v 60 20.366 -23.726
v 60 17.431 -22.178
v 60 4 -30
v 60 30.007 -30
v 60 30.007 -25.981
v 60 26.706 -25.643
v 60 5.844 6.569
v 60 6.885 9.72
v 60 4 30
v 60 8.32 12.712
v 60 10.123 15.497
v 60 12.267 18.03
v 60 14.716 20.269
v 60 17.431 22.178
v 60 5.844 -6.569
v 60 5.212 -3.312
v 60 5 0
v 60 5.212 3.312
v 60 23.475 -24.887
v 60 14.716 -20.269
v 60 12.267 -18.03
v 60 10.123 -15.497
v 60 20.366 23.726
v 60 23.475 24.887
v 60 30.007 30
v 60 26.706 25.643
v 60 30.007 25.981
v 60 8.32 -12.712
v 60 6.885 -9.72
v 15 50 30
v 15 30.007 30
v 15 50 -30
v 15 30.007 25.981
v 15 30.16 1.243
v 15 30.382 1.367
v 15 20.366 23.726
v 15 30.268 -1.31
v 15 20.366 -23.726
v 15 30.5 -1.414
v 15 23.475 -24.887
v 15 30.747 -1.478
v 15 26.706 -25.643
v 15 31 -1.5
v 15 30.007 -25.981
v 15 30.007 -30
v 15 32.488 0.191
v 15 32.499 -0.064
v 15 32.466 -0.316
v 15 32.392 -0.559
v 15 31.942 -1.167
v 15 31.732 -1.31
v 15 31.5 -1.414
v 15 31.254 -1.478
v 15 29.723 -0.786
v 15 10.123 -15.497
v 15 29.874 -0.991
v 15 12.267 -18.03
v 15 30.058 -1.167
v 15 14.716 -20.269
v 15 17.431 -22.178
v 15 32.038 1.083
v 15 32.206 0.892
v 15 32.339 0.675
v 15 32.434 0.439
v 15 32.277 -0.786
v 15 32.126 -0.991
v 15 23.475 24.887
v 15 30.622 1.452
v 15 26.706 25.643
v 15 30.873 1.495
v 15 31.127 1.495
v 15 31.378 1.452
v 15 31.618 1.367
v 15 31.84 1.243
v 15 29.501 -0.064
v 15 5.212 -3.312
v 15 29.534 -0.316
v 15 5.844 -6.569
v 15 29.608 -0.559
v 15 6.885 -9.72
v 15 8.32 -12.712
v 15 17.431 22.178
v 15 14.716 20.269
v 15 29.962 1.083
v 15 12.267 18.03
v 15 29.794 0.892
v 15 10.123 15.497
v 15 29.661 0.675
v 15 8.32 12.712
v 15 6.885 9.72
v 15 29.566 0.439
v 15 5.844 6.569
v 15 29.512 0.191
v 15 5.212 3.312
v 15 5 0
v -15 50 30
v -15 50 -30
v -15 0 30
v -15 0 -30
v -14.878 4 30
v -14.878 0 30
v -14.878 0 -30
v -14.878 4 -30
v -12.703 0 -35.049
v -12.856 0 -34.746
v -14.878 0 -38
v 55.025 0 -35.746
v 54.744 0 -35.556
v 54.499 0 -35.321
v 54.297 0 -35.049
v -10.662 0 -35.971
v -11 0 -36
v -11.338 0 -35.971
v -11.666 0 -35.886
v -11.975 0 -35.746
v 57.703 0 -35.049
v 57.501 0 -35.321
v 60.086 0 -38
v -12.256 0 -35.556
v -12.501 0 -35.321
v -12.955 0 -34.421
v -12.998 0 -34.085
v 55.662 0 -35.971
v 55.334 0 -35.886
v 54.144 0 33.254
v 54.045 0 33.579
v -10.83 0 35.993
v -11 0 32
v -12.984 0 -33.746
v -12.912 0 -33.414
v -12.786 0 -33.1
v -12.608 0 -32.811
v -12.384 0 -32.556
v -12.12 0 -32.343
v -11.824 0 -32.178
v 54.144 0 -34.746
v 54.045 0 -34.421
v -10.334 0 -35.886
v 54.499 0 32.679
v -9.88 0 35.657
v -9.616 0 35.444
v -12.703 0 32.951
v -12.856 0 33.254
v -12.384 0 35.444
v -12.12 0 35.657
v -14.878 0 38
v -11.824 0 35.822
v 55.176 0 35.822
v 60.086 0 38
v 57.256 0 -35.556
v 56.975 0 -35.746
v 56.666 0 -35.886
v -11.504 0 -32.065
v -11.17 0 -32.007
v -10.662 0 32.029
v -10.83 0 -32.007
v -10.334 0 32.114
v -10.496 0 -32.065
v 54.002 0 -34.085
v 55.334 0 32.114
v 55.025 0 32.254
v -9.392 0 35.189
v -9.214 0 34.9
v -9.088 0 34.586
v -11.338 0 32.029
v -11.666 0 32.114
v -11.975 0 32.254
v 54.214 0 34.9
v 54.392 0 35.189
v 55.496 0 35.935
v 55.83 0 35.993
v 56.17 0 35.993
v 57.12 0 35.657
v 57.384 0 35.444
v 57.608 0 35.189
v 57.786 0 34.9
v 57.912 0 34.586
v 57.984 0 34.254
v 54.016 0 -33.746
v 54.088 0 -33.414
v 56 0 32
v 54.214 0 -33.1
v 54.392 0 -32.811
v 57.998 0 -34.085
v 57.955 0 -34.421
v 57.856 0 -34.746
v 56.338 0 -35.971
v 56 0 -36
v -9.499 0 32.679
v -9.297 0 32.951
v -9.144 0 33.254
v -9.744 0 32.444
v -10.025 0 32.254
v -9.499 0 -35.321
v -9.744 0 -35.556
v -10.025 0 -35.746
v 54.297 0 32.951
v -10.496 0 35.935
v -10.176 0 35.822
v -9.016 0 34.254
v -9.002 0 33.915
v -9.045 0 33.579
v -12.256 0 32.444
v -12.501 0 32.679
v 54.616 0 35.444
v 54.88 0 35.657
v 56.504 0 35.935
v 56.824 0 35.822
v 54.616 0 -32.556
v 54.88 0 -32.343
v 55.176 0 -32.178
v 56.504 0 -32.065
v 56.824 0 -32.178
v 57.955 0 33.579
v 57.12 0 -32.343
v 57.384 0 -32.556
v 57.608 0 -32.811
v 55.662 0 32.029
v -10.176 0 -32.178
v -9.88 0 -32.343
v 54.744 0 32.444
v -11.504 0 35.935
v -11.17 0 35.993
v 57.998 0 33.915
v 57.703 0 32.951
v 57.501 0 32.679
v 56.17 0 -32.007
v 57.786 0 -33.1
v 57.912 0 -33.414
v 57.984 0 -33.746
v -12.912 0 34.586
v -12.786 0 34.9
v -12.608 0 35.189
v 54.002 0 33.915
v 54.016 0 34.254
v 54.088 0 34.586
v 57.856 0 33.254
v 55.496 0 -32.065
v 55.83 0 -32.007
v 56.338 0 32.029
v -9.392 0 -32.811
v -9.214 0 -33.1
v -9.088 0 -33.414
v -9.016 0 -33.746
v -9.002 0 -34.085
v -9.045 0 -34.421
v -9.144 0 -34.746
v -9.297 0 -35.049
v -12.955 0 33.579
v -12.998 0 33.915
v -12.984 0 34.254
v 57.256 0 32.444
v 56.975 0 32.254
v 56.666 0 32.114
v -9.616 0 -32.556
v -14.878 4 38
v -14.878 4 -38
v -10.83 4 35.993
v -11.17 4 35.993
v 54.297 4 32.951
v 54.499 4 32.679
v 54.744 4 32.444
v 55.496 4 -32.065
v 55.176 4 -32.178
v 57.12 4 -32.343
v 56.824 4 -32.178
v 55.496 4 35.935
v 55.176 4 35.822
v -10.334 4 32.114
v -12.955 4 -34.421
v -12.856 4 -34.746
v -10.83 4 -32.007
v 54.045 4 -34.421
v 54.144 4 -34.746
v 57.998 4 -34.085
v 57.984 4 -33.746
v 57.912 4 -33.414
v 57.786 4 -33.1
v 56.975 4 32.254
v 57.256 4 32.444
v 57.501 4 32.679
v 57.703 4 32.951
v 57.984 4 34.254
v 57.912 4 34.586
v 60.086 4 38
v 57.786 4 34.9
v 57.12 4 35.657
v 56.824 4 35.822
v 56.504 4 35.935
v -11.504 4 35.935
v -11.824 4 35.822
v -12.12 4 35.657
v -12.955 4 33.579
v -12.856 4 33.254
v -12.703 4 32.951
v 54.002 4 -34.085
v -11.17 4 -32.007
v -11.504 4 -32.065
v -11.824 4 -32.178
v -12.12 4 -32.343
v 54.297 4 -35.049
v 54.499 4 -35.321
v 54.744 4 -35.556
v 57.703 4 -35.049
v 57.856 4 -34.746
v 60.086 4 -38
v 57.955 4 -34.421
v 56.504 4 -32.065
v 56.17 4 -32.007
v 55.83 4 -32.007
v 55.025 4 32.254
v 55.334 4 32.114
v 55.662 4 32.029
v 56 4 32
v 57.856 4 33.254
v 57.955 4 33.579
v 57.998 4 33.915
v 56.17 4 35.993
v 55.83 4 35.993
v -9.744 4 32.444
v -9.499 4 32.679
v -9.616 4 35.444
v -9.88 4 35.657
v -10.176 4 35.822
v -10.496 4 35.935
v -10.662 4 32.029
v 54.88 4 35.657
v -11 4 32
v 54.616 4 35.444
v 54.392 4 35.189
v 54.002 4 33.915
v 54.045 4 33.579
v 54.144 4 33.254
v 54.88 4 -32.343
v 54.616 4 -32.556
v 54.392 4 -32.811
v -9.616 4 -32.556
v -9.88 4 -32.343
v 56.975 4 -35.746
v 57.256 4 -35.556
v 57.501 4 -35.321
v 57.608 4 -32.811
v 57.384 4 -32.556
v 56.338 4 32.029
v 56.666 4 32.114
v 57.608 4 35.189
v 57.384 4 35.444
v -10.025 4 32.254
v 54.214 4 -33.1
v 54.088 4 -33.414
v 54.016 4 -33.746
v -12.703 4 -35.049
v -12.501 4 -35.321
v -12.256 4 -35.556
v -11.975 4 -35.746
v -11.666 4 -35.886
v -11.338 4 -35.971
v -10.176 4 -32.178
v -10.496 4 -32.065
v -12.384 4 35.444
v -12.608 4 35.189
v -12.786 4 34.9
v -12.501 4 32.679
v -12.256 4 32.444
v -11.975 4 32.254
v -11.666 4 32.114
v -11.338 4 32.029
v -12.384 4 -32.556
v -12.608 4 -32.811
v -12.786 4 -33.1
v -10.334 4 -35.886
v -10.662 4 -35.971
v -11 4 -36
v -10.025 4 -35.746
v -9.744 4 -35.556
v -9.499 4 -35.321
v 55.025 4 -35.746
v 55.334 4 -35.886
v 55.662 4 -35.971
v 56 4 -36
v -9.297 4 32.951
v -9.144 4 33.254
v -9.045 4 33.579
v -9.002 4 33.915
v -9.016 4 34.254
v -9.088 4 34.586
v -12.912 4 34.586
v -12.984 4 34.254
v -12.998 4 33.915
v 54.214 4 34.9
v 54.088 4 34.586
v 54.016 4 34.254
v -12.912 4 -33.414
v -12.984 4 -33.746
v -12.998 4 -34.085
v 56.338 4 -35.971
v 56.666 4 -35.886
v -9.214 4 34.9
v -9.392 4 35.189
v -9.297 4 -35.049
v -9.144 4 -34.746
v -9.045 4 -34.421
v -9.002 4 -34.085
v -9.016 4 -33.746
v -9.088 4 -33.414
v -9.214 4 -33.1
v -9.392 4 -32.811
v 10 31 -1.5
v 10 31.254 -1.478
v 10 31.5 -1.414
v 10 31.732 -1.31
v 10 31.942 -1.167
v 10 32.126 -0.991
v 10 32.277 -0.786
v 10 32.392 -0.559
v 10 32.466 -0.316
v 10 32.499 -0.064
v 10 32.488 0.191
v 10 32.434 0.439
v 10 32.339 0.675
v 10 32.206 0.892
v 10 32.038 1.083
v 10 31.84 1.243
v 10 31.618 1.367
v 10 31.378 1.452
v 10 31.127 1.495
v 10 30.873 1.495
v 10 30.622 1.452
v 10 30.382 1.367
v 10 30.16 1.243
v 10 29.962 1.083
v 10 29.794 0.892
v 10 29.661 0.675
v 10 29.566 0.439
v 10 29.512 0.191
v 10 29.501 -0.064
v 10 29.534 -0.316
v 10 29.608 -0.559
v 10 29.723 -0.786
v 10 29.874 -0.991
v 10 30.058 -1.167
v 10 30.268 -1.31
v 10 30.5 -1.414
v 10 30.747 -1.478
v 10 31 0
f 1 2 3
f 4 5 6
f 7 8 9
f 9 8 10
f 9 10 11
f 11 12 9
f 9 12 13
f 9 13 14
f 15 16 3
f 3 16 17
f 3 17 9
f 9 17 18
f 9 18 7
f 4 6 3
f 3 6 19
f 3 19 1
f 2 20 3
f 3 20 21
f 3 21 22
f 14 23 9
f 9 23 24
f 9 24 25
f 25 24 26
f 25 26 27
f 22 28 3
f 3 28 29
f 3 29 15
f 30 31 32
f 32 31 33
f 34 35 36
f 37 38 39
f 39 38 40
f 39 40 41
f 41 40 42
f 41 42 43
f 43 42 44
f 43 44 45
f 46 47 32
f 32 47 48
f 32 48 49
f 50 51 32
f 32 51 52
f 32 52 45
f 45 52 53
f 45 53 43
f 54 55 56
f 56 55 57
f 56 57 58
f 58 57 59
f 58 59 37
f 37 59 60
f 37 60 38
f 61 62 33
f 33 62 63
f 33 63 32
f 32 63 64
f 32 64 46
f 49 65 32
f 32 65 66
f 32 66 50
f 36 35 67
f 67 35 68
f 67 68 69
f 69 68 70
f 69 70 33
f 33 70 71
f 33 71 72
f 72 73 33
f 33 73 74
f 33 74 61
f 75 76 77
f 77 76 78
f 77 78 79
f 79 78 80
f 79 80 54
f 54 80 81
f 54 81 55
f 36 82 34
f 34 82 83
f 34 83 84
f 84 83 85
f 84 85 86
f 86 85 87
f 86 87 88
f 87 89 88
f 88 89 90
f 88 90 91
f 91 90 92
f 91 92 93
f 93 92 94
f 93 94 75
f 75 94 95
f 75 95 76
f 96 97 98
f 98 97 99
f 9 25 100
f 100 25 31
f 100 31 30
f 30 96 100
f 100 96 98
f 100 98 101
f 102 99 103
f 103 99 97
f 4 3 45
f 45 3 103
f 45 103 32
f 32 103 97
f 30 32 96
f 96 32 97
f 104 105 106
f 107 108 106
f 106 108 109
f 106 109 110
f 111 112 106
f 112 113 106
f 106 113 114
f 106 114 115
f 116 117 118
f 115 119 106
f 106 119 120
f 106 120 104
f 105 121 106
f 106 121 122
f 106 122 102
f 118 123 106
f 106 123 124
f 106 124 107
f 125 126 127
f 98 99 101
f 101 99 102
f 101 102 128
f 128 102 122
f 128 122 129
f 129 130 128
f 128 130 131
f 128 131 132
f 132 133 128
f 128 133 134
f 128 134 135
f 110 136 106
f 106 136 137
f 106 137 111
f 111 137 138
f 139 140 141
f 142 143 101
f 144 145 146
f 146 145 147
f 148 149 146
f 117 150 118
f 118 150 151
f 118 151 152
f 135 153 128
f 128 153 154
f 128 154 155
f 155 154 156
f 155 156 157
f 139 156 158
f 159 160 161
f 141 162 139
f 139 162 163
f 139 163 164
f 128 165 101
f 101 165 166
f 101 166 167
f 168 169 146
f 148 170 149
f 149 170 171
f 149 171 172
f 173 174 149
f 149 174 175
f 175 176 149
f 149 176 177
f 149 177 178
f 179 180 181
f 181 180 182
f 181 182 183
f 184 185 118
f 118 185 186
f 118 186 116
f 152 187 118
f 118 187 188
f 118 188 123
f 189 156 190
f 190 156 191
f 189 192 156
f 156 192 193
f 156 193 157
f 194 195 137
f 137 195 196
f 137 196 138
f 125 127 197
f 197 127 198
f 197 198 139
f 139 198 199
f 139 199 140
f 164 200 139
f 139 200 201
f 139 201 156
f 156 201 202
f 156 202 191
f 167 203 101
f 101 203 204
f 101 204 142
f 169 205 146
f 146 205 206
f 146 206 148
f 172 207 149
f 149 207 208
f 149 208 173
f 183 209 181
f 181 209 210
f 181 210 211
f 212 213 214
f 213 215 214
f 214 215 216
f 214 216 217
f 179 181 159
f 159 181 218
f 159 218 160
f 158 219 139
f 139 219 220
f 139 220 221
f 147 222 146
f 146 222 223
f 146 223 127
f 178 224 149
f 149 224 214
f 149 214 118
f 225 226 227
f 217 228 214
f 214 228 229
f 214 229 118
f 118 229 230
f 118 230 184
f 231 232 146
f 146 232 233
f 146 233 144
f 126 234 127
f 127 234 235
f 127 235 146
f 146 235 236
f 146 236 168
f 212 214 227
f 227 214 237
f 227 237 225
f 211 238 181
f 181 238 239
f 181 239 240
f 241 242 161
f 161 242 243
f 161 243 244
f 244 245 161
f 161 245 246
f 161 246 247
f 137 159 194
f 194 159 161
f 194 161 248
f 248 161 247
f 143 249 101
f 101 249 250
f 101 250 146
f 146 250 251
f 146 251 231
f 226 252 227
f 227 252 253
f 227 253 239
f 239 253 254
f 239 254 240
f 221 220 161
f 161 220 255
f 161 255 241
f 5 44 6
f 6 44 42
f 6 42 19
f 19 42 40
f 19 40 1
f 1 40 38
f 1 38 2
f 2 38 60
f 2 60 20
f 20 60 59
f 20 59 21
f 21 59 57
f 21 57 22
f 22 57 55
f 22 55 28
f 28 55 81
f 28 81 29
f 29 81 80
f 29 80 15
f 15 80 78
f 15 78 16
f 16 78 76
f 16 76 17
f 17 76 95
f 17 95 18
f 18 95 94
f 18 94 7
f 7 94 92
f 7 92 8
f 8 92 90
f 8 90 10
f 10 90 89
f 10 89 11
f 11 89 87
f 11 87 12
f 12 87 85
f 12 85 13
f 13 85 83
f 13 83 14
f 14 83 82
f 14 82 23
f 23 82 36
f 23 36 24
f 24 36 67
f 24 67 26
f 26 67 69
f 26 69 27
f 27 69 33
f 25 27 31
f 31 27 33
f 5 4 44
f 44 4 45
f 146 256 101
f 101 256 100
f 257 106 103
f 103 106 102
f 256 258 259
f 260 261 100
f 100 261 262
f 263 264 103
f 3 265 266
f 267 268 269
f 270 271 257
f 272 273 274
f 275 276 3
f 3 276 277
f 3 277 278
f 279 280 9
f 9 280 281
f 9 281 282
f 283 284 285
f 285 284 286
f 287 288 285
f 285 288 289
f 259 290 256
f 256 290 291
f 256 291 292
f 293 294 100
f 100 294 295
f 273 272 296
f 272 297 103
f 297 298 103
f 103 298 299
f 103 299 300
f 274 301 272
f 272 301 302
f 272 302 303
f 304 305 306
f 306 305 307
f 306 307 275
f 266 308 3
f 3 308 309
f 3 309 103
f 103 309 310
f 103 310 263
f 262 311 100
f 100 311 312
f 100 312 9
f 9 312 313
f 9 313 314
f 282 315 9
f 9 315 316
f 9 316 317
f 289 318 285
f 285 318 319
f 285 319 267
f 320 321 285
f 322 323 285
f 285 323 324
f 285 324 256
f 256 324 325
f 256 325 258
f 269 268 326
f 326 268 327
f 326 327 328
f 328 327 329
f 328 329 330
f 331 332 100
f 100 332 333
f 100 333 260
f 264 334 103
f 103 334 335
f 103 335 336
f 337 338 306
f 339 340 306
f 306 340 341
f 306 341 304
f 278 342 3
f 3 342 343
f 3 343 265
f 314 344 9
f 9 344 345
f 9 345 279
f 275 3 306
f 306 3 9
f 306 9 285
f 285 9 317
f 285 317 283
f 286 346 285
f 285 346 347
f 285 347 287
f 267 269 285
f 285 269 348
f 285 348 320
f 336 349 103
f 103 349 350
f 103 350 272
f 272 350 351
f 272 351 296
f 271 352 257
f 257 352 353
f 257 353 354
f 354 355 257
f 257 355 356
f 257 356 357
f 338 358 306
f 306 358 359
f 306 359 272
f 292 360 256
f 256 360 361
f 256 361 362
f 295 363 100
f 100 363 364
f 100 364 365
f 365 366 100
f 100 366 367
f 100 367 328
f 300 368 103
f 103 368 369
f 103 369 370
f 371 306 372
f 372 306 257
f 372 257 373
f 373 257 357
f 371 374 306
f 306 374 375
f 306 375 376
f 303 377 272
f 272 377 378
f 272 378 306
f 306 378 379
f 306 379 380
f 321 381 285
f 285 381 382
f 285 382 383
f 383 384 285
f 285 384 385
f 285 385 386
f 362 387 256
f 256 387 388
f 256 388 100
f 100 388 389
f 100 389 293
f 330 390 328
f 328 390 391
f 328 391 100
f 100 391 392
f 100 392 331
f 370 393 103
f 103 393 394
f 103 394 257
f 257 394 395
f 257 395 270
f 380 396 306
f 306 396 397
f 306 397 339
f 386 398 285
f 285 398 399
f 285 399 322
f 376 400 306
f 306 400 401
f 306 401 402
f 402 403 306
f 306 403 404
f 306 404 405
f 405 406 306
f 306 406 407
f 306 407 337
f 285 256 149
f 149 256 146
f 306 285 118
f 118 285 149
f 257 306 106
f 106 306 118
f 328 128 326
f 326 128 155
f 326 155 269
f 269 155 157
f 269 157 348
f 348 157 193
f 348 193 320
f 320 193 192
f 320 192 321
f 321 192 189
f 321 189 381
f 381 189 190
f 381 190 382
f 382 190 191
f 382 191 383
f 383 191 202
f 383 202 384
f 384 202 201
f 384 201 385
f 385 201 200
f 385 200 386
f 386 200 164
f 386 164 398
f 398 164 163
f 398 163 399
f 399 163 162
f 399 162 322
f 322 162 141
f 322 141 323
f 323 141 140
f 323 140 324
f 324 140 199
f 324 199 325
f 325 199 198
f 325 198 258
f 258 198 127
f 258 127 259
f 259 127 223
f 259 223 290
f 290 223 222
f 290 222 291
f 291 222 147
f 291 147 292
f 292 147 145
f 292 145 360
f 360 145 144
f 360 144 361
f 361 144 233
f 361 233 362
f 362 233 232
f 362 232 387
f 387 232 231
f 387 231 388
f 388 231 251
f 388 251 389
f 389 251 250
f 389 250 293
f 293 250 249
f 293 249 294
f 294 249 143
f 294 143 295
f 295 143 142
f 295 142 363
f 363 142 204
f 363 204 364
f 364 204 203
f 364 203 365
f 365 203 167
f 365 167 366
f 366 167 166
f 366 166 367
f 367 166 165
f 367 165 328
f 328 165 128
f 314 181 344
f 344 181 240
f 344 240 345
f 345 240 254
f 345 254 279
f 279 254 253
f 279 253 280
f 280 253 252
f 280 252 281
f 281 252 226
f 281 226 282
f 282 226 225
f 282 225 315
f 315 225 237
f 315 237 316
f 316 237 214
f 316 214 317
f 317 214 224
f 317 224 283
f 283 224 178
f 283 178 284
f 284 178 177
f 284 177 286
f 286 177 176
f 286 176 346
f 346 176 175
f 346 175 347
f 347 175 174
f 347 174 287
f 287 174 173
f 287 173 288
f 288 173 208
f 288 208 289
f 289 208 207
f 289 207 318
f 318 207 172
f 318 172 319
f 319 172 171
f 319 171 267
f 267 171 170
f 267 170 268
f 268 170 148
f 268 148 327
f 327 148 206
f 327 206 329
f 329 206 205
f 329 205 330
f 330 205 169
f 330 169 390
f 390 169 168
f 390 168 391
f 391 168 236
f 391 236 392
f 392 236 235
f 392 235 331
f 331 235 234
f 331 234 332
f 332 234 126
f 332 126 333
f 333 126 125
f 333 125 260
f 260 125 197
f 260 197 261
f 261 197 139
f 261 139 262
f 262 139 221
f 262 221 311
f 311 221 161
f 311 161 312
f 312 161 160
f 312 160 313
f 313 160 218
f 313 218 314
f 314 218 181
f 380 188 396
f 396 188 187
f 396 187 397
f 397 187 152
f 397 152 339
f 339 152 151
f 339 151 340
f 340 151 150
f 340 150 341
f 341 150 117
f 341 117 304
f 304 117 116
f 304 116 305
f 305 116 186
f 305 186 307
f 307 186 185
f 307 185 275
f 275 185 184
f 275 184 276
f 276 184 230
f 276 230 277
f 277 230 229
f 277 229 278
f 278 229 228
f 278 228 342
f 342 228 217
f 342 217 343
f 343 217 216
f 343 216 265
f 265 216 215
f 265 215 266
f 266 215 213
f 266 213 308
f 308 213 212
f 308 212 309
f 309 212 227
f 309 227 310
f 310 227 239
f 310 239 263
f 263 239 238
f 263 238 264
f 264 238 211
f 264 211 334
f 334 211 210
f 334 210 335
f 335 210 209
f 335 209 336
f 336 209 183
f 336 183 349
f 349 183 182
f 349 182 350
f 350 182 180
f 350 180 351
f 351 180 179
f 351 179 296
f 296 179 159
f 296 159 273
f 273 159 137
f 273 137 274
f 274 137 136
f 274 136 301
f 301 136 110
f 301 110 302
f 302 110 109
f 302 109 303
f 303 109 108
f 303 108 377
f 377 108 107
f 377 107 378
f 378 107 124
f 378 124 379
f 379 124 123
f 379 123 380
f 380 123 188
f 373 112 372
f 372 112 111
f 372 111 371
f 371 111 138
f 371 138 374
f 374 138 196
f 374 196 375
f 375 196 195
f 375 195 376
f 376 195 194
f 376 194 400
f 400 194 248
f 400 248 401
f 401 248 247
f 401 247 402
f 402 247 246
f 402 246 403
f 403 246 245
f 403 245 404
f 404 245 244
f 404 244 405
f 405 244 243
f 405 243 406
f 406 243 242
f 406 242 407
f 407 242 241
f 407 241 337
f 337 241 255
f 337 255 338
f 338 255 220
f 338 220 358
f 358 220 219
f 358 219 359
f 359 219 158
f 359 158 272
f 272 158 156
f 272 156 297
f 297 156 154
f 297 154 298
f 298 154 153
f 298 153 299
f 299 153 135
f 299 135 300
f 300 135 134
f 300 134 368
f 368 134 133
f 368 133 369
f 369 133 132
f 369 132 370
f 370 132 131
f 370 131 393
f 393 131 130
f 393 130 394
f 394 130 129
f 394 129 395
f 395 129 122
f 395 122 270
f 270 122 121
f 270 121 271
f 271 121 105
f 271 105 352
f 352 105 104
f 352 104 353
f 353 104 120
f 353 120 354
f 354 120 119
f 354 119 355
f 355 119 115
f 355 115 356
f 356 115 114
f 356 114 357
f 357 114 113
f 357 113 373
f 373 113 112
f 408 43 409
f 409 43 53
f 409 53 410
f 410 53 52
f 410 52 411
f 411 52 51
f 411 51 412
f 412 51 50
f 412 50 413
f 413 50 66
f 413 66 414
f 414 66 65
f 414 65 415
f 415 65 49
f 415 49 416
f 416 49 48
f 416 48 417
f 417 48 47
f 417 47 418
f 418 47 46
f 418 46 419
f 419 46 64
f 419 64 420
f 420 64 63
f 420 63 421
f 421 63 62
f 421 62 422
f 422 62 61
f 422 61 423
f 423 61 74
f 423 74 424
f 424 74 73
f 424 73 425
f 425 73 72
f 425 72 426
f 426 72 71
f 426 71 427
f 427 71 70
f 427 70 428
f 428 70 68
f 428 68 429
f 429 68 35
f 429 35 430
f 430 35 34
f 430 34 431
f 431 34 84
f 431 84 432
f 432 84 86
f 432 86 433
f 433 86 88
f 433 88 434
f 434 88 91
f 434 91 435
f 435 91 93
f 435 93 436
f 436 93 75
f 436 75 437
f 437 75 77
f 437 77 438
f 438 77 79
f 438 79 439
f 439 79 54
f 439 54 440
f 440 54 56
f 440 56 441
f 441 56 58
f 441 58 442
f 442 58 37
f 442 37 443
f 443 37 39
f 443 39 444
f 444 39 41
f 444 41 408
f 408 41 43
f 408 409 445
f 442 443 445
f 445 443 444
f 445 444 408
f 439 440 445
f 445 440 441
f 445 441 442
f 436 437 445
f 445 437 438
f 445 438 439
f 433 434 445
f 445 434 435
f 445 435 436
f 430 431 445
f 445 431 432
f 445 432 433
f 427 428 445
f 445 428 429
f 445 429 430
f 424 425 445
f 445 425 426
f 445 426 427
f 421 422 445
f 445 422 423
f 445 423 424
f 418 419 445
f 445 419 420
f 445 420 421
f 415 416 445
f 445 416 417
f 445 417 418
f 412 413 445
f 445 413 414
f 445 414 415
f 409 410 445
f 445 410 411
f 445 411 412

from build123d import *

# Parameters (mm, degrees)
SKETCH1_W           = 30
SKETCH1_H           = 60
BOSS_EXTRUDE1_DEPTH = 50
BOSS_EXTRUDE2_DEPTH = 45
SKETCH3_W           = 74.963778589
SKETCH3_H           = 76
SKETCH3_R           = 2
BOSS_EXTRUDE3_DEPTH = 4
SKETCH4_R           = 1.5
CUT_EXTRUDE1_DEPTH  = 5


with BuildPart() as part:
    # Sketch1 → Boss-Extrude1 (new body)
    with BuildSketch(Plane(origin=(0, 0, 0), x_dir=(1, 0, 0), z_dir=(0, 1, 0))):
        Rectangle(SKETCH1_W, SKETCH1_H)
    extrude(amount=BOSS_EXTRUDE1_DEPTH)

    # Sketch2 → Boss-Extrude2 (add)
    with BuildSketch(Plane(origin=(15, 0, 0), x_dir=(0, 0, -1), z_dir=(1, 0, 0))):
        with BuildLine():
            Line((-25.98102227, 30.006782085), (-30, 30.006782085))
            Line((-30, 30.006782085), (-30, 0))
            Line((-30, 0), (30, 0))
            Line((30, 0), (30, 30.006782085))
            Line((30, 30.006782085), (25.98102227, 30.006782085))
            ThreePointArc((25.98102227, 30.006782085), (0, 5), (-25.98102227, 30.006782085))
        make_face()
    extrude(amount=BOSS_EXTRUDE2_DEPTH)

    # Sketch3 → Boss-Extrude3 (add)
    with BuildSketch(Plane.XZ):
        with Locations((22.604342162, 0)):
            Rectangle(SKETCH3_W, SKETCH3_H)
        with Locations(Location((-11, 34, 0), (0, 0, 270))):
            Circle(SKETCH3_R, mode=Mode.SUBTRACT)
        with Locations(Location((56, 34, 0), (0, 0, 270))):
            Circle(SKETCH3_R, mode=Mode.SUBTRACT)
        with Locations(Location((56, -34, 0), (0, 0, 270))):
            Circle(SKETCH3_R, mode=Mode.SUBTRACT)
        with Locations(Location((-11, -34, 0), (0, 0, 270))):
            Circle(SKETCH3_R, mode=Mode.SUBTRACT)
    extrude(amount=-BOSS_EXTRUDE3_DEPTH)

    # Sketch4 → Cut-Extrude1 (cut)
    with BuildSketch(Plane(origin=(15, 0, 0), x_dir=(0, 0, -1), z_dir=(1, 0, 0))):
        with Locations((0, 31)):
            Circle(SKETCH4_R)
    extrude(amount=-CUT_EXTRUDE1_DEPTH, mode=Mode.SUBTRACT)


solid = part.part
